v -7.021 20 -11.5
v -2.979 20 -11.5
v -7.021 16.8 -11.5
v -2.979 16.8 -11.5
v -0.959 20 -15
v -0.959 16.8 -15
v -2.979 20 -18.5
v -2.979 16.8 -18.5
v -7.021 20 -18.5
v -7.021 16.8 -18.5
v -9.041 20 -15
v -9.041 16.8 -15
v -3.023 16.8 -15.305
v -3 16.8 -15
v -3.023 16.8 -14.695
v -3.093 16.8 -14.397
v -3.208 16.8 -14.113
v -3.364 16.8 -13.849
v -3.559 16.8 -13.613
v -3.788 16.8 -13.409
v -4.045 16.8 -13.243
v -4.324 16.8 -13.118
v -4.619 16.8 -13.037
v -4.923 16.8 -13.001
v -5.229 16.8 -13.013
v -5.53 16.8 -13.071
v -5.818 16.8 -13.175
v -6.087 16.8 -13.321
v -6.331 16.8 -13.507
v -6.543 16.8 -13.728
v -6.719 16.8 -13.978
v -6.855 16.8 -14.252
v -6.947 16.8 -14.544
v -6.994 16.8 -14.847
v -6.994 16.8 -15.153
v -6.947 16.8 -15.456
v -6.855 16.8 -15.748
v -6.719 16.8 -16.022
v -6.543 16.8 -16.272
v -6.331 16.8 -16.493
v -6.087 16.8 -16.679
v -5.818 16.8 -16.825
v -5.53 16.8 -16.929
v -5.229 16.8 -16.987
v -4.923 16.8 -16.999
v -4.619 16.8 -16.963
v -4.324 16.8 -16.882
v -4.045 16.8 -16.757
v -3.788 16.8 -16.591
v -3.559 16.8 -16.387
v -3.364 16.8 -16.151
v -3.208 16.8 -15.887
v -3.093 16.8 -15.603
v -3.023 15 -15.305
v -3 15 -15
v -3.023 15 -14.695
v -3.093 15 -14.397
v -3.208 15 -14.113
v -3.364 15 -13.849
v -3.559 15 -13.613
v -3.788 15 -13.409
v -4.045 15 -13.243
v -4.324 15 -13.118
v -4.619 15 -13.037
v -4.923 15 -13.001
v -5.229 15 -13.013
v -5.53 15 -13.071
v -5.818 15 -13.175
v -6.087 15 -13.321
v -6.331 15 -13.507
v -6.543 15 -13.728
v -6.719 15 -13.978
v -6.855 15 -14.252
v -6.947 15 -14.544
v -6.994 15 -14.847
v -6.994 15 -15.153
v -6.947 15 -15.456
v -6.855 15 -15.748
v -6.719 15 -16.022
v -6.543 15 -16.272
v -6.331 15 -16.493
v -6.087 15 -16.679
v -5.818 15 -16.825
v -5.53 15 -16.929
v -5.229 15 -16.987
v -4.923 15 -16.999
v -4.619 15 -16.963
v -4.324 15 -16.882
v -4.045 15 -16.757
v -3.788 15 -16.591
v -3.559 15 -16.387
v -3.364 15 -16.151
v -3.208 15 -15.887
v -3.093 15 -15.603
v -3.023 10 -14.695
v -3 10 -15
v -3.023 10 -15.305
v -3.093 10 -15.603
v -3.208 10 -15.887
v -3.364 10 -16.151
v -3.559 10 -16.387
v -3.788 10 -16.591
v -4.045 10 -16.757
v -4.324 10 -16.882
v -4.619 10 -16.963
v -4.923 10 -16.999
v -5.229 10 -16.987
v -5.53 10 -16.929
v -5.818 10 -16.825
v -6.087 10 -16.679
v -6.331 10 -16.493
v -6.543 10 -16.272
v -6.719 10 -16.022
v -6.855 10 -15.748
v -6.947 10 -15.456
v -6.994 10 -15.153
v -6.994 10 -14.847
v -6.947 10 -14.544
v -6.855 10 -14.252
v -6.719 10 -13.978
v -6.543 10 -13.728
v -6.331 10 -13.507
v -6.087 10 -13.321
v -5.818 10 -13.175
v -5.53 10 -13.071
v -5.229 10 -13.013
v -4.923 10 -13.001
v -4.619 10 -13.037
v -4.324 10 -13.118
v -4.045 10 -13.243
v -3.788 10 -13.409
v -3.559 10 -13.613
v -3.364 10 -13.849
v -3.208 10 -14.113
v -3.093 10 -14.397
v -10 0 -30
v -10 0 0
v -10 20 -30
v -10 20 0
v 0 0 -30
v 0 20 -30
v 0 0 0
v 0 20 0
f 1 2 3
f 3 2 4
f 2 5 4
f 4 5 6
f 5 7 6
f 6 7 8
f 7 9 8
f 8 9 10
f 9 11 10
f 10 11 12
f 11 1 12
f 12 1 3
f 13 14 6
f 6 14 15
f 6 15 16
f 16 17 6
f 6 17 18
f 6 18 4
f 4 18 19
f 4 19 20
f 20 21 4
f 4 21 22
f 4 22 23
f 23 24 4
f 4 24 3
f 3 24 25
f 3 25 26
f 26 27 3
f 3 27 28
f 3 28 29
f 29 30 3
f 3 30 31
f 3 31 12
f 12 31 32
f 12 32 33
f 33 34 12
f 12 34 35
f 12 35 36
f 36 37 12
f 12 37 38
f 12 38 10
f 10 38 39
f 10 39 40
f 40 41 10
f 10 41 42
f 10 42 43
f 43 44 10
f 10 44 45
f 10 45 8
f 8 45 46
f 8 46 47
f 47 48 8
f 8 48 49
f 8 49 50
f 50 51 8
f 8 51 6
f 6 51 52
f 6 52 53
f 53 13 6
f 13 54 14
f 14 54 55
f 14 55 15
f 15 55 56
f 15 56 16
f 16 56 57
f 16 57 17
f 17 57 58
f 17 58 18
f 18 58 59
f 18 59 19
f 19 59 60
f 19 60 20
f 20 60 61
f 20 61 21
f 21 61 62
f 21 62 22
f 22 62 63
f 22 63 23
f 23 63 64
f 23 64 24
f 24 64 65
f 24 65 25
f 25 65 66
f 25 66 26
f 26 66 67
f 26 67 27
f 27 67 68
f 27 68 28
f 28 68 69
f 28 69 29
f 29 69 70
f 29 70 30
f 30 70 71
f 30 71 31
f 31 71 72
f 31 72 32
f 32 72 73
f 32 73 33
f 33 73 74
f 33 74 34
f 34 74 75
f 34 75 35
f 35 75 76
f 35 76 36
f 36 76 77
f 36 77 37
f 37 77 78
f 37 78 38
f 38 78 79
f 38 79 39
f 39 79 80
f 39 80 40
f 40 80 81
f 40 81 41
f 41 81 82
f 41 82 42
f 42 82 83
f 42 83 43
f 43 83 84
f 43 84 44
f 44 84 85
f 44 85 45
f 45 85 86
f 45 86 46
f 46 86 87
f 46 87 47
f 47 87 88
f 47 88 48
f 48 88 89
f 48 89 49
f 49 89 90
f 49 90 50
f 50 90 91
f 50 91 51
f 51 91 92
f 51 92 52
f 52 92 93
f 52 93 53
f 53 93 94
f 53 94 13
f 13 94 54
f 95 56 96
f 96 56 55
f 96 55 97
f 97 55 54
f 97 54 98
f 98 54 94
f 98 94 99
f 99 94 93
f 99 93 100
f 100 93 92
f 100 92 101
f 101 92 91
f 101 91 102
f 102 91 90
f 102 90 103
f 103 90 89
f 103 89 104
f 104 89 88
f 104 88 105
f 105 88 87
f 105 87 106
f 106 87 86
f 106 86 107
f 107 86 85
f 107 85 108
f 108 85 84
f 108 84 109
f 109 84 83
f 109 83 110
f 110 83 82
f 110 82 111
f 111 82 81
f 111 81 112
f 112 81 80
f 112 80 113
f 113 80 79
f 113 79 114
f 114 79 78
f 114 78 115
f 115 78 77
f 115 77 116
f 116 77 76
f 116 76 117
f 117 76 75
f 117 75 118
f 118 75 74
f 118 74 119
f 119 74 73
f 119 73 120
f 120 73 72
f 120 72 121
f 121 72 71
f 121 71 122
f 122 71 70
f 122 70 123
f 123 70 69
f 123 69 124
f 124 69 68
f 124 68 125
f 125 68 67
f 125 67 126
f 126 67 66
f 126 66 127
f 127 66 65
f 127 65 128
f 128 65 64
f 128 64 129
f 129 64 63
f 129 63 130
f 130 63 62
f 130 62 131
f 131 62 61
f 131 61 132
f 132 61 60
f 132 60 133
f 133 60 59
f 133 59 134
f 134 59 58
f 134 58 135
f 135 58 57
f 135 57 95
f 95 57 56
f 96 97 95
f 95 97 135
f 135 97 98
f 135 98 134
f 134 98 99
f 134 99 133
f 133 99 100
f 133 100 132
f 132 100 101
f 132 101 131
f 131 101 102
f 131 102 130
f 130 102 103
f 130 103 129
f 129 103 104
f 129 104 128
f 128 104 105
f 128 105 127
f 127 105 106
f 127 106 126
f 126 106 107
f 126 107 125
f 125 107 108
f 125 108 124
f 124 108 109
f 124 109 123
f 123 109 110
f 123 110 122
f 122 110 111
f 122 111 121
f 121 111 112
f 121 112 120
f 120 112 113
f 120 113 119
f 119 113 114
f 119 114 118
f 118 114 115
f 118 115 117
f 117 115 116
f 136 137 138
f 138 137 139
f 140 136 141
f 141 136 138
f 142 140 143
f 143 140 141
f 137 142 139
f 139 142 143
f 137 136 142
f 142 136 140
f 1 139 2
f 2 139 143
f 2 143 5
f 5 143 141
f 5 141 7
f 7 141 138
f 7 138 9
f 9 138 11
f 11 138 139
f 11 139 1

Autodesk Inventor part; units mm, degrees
ref_plane "YZ Plane" through (0, 0, 0) normal (1, 0, 0) x (0, 1, 0)
ref_plane "XZ Plane" through (0, 0, 0) normal (0, 1, 0) x (-1, 0, 0)
ref_plane "XY Plane" through (0, 0, 0) normal (0, 0, 1) x (1, 0, 0)
sketch "Эскиз1" plane through (0, 0, 0) normal (0, 1, 0) x (-1, 0, 0)
  line L0 (0, 0) -> (10, 0)
  line L1 (10, 0) -> (10, -30)
  line L2 (10, -30) -> (0, -30)
  line L3 (0, -30) -> (0, 0)
  dimension "d0" = 10
  dimension "d1" = 30
extrude "Выдавливание1" add sketch "Эскиз1" along normal blind 20
sketch "Эскиз2" plane through (0, 20, 0) normal (0, 1, 0) x (1, 0, 0)
  line L0 (-7.0207, 11.5) -> (-9.0415, 15)
  line L1 (-9.0415, 15) -> (-7.0207, 18.5)
  line L2 (-7.0207, 18.5) -> (-2.9793, 18.5)
  line L3 (-2.9793, 18.5) -> (-0.9585, 15)
  line L4 (-0.9585, 15) -> (-2.9793, 11.5)
  line L5 (-2.9793, 11.5) -> (-7.0207, 11.5)
  line L6 (-10, 30) -> (-10, 0) projected
  line L7 (0, 30) -> (-10, 30) projected
  point P0 (0, 0)
  point P1 (-5, 15)
  point P2 (-10, 15)
  point P3 (-5, 30)
  dimension "d4" = 3.5
sketch "Эскиз3" plane through (0, 20, 0) normal (0, 1, 0) x (1, 0, 0)
  circle A0 centre (-5, 15) radius 2
  point P0 (0, 0)
  dimension "d5" = 4
extrude "Выдавливание2" cut sketch "Эскиз3" against normal blind 10
extrude "Выдавливание3" cut sketch "Эскиз2" against normal blind 3.2
properties part number "FlanecPodGayku"
